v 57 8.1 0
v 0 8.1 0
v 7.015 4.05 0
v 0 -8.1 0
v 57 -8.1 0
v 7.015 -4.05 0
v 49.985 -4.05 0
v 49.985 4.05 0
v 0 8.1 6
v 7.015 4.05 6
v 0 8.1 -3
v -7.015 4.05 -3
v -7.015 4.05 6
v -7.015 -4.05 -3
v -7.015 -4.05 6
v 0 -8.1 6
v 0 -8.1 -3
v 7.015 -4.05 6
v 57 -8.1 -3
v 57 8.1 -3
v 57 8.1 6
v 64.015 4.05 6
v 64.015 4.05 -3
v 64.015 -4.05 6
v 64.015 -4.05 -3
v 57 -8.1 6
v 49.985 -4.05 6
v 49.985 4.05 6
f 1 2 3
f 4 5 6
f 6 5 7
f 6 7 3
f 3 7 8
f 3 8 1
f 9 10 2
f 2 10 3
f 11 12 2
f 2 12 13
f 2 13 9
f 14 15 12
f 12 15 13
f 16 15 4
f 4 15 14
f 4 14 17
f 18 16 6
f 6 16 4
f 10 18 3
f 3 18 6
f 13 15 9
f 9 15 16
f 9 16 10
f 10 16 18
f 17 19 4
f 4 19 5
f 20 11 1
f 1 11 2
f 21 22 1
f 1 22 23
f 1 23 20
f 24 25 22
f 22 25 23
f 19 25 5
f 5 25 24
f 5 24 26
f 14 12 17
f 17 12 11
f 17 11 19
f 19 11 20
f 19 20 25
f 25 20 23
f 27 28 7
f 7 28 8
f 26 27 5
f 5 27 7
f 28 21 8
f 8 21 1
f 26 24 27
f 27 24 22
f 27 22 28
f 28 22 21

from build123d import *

# Parameters (mm, degrees)
BOSS_EXTRUDE1_DEPTH = 6
BOSS_EXTRUDE2_DEPTH = 3
BOSS_EXTRUDE3_DEPTH = 6


with BuildPart() as part:
    # Sketch1 → Boss-Extrude1 (new body)
    with BuildSketch(Plane.XY):
        Polygon((0, 8.1), (-7.014805771, 4.05), (-7.014805771, -4.05), (0, -8.1), (7.014805771, -4.05), (7.014805771, 4.05), align=None)
    extrude(amount=BOSS_EXTRUDE1_DEPTH)

    # Sketch2 → Boss-Extrude2 (add)
    with BuildSketch(Plane(origin=(0, 0, 0), x_dir=(-1, 0, 0), z_dir=(0, 0, -1))):
        Polygon((0, 8.1), (0, -8.1), (-7.014805771, -4.05), (-7.014805771, 4.05), align=None)
        Polygon((0, 8.1), (0, -8.1), (7.014805771, -4.05), (7.014805771, 4.05), align=None)
        Polygon((0, 8.1), (-28.5, 8.1), (-28.5, -8.1), (0, -8.1), (-7.014805771, -4.05), (-7.014805771, 4.05), align=None)
        Polygon((-28.5, 8.1), (-57, 8.1), (-49.985194229, 4.05), (-49.985194229, -4.05), (-57, -8.1), (-28.5, -8.1), align=None)
        Polygon((-57, 8.1), (-49.985194229, 4.05), (-49.985194229, -4.05), (-57, -8.1), align=None)
        Polygon((-57, 8.1), (-57, -8.1), (-64.014805771, -4.05), (-64.014805771, 4.05), align=None)
    extrude(amount=BOSS_EXTRUDE2_DEPTH)

    # Sketch3 → Boss-Extrude3 (add)
    with BuildSketch(Plane.XY):
        Polygon((64.014805771, -4.05), (64.014805771, 4.05), (57, 8.1), (49.985194229, 4.05), (49.985194229, -4.05), (57, -8.1), align=None)
    extrude(amount=BOSS_EXTRUDE3_DEPTH)


solid = part.part
